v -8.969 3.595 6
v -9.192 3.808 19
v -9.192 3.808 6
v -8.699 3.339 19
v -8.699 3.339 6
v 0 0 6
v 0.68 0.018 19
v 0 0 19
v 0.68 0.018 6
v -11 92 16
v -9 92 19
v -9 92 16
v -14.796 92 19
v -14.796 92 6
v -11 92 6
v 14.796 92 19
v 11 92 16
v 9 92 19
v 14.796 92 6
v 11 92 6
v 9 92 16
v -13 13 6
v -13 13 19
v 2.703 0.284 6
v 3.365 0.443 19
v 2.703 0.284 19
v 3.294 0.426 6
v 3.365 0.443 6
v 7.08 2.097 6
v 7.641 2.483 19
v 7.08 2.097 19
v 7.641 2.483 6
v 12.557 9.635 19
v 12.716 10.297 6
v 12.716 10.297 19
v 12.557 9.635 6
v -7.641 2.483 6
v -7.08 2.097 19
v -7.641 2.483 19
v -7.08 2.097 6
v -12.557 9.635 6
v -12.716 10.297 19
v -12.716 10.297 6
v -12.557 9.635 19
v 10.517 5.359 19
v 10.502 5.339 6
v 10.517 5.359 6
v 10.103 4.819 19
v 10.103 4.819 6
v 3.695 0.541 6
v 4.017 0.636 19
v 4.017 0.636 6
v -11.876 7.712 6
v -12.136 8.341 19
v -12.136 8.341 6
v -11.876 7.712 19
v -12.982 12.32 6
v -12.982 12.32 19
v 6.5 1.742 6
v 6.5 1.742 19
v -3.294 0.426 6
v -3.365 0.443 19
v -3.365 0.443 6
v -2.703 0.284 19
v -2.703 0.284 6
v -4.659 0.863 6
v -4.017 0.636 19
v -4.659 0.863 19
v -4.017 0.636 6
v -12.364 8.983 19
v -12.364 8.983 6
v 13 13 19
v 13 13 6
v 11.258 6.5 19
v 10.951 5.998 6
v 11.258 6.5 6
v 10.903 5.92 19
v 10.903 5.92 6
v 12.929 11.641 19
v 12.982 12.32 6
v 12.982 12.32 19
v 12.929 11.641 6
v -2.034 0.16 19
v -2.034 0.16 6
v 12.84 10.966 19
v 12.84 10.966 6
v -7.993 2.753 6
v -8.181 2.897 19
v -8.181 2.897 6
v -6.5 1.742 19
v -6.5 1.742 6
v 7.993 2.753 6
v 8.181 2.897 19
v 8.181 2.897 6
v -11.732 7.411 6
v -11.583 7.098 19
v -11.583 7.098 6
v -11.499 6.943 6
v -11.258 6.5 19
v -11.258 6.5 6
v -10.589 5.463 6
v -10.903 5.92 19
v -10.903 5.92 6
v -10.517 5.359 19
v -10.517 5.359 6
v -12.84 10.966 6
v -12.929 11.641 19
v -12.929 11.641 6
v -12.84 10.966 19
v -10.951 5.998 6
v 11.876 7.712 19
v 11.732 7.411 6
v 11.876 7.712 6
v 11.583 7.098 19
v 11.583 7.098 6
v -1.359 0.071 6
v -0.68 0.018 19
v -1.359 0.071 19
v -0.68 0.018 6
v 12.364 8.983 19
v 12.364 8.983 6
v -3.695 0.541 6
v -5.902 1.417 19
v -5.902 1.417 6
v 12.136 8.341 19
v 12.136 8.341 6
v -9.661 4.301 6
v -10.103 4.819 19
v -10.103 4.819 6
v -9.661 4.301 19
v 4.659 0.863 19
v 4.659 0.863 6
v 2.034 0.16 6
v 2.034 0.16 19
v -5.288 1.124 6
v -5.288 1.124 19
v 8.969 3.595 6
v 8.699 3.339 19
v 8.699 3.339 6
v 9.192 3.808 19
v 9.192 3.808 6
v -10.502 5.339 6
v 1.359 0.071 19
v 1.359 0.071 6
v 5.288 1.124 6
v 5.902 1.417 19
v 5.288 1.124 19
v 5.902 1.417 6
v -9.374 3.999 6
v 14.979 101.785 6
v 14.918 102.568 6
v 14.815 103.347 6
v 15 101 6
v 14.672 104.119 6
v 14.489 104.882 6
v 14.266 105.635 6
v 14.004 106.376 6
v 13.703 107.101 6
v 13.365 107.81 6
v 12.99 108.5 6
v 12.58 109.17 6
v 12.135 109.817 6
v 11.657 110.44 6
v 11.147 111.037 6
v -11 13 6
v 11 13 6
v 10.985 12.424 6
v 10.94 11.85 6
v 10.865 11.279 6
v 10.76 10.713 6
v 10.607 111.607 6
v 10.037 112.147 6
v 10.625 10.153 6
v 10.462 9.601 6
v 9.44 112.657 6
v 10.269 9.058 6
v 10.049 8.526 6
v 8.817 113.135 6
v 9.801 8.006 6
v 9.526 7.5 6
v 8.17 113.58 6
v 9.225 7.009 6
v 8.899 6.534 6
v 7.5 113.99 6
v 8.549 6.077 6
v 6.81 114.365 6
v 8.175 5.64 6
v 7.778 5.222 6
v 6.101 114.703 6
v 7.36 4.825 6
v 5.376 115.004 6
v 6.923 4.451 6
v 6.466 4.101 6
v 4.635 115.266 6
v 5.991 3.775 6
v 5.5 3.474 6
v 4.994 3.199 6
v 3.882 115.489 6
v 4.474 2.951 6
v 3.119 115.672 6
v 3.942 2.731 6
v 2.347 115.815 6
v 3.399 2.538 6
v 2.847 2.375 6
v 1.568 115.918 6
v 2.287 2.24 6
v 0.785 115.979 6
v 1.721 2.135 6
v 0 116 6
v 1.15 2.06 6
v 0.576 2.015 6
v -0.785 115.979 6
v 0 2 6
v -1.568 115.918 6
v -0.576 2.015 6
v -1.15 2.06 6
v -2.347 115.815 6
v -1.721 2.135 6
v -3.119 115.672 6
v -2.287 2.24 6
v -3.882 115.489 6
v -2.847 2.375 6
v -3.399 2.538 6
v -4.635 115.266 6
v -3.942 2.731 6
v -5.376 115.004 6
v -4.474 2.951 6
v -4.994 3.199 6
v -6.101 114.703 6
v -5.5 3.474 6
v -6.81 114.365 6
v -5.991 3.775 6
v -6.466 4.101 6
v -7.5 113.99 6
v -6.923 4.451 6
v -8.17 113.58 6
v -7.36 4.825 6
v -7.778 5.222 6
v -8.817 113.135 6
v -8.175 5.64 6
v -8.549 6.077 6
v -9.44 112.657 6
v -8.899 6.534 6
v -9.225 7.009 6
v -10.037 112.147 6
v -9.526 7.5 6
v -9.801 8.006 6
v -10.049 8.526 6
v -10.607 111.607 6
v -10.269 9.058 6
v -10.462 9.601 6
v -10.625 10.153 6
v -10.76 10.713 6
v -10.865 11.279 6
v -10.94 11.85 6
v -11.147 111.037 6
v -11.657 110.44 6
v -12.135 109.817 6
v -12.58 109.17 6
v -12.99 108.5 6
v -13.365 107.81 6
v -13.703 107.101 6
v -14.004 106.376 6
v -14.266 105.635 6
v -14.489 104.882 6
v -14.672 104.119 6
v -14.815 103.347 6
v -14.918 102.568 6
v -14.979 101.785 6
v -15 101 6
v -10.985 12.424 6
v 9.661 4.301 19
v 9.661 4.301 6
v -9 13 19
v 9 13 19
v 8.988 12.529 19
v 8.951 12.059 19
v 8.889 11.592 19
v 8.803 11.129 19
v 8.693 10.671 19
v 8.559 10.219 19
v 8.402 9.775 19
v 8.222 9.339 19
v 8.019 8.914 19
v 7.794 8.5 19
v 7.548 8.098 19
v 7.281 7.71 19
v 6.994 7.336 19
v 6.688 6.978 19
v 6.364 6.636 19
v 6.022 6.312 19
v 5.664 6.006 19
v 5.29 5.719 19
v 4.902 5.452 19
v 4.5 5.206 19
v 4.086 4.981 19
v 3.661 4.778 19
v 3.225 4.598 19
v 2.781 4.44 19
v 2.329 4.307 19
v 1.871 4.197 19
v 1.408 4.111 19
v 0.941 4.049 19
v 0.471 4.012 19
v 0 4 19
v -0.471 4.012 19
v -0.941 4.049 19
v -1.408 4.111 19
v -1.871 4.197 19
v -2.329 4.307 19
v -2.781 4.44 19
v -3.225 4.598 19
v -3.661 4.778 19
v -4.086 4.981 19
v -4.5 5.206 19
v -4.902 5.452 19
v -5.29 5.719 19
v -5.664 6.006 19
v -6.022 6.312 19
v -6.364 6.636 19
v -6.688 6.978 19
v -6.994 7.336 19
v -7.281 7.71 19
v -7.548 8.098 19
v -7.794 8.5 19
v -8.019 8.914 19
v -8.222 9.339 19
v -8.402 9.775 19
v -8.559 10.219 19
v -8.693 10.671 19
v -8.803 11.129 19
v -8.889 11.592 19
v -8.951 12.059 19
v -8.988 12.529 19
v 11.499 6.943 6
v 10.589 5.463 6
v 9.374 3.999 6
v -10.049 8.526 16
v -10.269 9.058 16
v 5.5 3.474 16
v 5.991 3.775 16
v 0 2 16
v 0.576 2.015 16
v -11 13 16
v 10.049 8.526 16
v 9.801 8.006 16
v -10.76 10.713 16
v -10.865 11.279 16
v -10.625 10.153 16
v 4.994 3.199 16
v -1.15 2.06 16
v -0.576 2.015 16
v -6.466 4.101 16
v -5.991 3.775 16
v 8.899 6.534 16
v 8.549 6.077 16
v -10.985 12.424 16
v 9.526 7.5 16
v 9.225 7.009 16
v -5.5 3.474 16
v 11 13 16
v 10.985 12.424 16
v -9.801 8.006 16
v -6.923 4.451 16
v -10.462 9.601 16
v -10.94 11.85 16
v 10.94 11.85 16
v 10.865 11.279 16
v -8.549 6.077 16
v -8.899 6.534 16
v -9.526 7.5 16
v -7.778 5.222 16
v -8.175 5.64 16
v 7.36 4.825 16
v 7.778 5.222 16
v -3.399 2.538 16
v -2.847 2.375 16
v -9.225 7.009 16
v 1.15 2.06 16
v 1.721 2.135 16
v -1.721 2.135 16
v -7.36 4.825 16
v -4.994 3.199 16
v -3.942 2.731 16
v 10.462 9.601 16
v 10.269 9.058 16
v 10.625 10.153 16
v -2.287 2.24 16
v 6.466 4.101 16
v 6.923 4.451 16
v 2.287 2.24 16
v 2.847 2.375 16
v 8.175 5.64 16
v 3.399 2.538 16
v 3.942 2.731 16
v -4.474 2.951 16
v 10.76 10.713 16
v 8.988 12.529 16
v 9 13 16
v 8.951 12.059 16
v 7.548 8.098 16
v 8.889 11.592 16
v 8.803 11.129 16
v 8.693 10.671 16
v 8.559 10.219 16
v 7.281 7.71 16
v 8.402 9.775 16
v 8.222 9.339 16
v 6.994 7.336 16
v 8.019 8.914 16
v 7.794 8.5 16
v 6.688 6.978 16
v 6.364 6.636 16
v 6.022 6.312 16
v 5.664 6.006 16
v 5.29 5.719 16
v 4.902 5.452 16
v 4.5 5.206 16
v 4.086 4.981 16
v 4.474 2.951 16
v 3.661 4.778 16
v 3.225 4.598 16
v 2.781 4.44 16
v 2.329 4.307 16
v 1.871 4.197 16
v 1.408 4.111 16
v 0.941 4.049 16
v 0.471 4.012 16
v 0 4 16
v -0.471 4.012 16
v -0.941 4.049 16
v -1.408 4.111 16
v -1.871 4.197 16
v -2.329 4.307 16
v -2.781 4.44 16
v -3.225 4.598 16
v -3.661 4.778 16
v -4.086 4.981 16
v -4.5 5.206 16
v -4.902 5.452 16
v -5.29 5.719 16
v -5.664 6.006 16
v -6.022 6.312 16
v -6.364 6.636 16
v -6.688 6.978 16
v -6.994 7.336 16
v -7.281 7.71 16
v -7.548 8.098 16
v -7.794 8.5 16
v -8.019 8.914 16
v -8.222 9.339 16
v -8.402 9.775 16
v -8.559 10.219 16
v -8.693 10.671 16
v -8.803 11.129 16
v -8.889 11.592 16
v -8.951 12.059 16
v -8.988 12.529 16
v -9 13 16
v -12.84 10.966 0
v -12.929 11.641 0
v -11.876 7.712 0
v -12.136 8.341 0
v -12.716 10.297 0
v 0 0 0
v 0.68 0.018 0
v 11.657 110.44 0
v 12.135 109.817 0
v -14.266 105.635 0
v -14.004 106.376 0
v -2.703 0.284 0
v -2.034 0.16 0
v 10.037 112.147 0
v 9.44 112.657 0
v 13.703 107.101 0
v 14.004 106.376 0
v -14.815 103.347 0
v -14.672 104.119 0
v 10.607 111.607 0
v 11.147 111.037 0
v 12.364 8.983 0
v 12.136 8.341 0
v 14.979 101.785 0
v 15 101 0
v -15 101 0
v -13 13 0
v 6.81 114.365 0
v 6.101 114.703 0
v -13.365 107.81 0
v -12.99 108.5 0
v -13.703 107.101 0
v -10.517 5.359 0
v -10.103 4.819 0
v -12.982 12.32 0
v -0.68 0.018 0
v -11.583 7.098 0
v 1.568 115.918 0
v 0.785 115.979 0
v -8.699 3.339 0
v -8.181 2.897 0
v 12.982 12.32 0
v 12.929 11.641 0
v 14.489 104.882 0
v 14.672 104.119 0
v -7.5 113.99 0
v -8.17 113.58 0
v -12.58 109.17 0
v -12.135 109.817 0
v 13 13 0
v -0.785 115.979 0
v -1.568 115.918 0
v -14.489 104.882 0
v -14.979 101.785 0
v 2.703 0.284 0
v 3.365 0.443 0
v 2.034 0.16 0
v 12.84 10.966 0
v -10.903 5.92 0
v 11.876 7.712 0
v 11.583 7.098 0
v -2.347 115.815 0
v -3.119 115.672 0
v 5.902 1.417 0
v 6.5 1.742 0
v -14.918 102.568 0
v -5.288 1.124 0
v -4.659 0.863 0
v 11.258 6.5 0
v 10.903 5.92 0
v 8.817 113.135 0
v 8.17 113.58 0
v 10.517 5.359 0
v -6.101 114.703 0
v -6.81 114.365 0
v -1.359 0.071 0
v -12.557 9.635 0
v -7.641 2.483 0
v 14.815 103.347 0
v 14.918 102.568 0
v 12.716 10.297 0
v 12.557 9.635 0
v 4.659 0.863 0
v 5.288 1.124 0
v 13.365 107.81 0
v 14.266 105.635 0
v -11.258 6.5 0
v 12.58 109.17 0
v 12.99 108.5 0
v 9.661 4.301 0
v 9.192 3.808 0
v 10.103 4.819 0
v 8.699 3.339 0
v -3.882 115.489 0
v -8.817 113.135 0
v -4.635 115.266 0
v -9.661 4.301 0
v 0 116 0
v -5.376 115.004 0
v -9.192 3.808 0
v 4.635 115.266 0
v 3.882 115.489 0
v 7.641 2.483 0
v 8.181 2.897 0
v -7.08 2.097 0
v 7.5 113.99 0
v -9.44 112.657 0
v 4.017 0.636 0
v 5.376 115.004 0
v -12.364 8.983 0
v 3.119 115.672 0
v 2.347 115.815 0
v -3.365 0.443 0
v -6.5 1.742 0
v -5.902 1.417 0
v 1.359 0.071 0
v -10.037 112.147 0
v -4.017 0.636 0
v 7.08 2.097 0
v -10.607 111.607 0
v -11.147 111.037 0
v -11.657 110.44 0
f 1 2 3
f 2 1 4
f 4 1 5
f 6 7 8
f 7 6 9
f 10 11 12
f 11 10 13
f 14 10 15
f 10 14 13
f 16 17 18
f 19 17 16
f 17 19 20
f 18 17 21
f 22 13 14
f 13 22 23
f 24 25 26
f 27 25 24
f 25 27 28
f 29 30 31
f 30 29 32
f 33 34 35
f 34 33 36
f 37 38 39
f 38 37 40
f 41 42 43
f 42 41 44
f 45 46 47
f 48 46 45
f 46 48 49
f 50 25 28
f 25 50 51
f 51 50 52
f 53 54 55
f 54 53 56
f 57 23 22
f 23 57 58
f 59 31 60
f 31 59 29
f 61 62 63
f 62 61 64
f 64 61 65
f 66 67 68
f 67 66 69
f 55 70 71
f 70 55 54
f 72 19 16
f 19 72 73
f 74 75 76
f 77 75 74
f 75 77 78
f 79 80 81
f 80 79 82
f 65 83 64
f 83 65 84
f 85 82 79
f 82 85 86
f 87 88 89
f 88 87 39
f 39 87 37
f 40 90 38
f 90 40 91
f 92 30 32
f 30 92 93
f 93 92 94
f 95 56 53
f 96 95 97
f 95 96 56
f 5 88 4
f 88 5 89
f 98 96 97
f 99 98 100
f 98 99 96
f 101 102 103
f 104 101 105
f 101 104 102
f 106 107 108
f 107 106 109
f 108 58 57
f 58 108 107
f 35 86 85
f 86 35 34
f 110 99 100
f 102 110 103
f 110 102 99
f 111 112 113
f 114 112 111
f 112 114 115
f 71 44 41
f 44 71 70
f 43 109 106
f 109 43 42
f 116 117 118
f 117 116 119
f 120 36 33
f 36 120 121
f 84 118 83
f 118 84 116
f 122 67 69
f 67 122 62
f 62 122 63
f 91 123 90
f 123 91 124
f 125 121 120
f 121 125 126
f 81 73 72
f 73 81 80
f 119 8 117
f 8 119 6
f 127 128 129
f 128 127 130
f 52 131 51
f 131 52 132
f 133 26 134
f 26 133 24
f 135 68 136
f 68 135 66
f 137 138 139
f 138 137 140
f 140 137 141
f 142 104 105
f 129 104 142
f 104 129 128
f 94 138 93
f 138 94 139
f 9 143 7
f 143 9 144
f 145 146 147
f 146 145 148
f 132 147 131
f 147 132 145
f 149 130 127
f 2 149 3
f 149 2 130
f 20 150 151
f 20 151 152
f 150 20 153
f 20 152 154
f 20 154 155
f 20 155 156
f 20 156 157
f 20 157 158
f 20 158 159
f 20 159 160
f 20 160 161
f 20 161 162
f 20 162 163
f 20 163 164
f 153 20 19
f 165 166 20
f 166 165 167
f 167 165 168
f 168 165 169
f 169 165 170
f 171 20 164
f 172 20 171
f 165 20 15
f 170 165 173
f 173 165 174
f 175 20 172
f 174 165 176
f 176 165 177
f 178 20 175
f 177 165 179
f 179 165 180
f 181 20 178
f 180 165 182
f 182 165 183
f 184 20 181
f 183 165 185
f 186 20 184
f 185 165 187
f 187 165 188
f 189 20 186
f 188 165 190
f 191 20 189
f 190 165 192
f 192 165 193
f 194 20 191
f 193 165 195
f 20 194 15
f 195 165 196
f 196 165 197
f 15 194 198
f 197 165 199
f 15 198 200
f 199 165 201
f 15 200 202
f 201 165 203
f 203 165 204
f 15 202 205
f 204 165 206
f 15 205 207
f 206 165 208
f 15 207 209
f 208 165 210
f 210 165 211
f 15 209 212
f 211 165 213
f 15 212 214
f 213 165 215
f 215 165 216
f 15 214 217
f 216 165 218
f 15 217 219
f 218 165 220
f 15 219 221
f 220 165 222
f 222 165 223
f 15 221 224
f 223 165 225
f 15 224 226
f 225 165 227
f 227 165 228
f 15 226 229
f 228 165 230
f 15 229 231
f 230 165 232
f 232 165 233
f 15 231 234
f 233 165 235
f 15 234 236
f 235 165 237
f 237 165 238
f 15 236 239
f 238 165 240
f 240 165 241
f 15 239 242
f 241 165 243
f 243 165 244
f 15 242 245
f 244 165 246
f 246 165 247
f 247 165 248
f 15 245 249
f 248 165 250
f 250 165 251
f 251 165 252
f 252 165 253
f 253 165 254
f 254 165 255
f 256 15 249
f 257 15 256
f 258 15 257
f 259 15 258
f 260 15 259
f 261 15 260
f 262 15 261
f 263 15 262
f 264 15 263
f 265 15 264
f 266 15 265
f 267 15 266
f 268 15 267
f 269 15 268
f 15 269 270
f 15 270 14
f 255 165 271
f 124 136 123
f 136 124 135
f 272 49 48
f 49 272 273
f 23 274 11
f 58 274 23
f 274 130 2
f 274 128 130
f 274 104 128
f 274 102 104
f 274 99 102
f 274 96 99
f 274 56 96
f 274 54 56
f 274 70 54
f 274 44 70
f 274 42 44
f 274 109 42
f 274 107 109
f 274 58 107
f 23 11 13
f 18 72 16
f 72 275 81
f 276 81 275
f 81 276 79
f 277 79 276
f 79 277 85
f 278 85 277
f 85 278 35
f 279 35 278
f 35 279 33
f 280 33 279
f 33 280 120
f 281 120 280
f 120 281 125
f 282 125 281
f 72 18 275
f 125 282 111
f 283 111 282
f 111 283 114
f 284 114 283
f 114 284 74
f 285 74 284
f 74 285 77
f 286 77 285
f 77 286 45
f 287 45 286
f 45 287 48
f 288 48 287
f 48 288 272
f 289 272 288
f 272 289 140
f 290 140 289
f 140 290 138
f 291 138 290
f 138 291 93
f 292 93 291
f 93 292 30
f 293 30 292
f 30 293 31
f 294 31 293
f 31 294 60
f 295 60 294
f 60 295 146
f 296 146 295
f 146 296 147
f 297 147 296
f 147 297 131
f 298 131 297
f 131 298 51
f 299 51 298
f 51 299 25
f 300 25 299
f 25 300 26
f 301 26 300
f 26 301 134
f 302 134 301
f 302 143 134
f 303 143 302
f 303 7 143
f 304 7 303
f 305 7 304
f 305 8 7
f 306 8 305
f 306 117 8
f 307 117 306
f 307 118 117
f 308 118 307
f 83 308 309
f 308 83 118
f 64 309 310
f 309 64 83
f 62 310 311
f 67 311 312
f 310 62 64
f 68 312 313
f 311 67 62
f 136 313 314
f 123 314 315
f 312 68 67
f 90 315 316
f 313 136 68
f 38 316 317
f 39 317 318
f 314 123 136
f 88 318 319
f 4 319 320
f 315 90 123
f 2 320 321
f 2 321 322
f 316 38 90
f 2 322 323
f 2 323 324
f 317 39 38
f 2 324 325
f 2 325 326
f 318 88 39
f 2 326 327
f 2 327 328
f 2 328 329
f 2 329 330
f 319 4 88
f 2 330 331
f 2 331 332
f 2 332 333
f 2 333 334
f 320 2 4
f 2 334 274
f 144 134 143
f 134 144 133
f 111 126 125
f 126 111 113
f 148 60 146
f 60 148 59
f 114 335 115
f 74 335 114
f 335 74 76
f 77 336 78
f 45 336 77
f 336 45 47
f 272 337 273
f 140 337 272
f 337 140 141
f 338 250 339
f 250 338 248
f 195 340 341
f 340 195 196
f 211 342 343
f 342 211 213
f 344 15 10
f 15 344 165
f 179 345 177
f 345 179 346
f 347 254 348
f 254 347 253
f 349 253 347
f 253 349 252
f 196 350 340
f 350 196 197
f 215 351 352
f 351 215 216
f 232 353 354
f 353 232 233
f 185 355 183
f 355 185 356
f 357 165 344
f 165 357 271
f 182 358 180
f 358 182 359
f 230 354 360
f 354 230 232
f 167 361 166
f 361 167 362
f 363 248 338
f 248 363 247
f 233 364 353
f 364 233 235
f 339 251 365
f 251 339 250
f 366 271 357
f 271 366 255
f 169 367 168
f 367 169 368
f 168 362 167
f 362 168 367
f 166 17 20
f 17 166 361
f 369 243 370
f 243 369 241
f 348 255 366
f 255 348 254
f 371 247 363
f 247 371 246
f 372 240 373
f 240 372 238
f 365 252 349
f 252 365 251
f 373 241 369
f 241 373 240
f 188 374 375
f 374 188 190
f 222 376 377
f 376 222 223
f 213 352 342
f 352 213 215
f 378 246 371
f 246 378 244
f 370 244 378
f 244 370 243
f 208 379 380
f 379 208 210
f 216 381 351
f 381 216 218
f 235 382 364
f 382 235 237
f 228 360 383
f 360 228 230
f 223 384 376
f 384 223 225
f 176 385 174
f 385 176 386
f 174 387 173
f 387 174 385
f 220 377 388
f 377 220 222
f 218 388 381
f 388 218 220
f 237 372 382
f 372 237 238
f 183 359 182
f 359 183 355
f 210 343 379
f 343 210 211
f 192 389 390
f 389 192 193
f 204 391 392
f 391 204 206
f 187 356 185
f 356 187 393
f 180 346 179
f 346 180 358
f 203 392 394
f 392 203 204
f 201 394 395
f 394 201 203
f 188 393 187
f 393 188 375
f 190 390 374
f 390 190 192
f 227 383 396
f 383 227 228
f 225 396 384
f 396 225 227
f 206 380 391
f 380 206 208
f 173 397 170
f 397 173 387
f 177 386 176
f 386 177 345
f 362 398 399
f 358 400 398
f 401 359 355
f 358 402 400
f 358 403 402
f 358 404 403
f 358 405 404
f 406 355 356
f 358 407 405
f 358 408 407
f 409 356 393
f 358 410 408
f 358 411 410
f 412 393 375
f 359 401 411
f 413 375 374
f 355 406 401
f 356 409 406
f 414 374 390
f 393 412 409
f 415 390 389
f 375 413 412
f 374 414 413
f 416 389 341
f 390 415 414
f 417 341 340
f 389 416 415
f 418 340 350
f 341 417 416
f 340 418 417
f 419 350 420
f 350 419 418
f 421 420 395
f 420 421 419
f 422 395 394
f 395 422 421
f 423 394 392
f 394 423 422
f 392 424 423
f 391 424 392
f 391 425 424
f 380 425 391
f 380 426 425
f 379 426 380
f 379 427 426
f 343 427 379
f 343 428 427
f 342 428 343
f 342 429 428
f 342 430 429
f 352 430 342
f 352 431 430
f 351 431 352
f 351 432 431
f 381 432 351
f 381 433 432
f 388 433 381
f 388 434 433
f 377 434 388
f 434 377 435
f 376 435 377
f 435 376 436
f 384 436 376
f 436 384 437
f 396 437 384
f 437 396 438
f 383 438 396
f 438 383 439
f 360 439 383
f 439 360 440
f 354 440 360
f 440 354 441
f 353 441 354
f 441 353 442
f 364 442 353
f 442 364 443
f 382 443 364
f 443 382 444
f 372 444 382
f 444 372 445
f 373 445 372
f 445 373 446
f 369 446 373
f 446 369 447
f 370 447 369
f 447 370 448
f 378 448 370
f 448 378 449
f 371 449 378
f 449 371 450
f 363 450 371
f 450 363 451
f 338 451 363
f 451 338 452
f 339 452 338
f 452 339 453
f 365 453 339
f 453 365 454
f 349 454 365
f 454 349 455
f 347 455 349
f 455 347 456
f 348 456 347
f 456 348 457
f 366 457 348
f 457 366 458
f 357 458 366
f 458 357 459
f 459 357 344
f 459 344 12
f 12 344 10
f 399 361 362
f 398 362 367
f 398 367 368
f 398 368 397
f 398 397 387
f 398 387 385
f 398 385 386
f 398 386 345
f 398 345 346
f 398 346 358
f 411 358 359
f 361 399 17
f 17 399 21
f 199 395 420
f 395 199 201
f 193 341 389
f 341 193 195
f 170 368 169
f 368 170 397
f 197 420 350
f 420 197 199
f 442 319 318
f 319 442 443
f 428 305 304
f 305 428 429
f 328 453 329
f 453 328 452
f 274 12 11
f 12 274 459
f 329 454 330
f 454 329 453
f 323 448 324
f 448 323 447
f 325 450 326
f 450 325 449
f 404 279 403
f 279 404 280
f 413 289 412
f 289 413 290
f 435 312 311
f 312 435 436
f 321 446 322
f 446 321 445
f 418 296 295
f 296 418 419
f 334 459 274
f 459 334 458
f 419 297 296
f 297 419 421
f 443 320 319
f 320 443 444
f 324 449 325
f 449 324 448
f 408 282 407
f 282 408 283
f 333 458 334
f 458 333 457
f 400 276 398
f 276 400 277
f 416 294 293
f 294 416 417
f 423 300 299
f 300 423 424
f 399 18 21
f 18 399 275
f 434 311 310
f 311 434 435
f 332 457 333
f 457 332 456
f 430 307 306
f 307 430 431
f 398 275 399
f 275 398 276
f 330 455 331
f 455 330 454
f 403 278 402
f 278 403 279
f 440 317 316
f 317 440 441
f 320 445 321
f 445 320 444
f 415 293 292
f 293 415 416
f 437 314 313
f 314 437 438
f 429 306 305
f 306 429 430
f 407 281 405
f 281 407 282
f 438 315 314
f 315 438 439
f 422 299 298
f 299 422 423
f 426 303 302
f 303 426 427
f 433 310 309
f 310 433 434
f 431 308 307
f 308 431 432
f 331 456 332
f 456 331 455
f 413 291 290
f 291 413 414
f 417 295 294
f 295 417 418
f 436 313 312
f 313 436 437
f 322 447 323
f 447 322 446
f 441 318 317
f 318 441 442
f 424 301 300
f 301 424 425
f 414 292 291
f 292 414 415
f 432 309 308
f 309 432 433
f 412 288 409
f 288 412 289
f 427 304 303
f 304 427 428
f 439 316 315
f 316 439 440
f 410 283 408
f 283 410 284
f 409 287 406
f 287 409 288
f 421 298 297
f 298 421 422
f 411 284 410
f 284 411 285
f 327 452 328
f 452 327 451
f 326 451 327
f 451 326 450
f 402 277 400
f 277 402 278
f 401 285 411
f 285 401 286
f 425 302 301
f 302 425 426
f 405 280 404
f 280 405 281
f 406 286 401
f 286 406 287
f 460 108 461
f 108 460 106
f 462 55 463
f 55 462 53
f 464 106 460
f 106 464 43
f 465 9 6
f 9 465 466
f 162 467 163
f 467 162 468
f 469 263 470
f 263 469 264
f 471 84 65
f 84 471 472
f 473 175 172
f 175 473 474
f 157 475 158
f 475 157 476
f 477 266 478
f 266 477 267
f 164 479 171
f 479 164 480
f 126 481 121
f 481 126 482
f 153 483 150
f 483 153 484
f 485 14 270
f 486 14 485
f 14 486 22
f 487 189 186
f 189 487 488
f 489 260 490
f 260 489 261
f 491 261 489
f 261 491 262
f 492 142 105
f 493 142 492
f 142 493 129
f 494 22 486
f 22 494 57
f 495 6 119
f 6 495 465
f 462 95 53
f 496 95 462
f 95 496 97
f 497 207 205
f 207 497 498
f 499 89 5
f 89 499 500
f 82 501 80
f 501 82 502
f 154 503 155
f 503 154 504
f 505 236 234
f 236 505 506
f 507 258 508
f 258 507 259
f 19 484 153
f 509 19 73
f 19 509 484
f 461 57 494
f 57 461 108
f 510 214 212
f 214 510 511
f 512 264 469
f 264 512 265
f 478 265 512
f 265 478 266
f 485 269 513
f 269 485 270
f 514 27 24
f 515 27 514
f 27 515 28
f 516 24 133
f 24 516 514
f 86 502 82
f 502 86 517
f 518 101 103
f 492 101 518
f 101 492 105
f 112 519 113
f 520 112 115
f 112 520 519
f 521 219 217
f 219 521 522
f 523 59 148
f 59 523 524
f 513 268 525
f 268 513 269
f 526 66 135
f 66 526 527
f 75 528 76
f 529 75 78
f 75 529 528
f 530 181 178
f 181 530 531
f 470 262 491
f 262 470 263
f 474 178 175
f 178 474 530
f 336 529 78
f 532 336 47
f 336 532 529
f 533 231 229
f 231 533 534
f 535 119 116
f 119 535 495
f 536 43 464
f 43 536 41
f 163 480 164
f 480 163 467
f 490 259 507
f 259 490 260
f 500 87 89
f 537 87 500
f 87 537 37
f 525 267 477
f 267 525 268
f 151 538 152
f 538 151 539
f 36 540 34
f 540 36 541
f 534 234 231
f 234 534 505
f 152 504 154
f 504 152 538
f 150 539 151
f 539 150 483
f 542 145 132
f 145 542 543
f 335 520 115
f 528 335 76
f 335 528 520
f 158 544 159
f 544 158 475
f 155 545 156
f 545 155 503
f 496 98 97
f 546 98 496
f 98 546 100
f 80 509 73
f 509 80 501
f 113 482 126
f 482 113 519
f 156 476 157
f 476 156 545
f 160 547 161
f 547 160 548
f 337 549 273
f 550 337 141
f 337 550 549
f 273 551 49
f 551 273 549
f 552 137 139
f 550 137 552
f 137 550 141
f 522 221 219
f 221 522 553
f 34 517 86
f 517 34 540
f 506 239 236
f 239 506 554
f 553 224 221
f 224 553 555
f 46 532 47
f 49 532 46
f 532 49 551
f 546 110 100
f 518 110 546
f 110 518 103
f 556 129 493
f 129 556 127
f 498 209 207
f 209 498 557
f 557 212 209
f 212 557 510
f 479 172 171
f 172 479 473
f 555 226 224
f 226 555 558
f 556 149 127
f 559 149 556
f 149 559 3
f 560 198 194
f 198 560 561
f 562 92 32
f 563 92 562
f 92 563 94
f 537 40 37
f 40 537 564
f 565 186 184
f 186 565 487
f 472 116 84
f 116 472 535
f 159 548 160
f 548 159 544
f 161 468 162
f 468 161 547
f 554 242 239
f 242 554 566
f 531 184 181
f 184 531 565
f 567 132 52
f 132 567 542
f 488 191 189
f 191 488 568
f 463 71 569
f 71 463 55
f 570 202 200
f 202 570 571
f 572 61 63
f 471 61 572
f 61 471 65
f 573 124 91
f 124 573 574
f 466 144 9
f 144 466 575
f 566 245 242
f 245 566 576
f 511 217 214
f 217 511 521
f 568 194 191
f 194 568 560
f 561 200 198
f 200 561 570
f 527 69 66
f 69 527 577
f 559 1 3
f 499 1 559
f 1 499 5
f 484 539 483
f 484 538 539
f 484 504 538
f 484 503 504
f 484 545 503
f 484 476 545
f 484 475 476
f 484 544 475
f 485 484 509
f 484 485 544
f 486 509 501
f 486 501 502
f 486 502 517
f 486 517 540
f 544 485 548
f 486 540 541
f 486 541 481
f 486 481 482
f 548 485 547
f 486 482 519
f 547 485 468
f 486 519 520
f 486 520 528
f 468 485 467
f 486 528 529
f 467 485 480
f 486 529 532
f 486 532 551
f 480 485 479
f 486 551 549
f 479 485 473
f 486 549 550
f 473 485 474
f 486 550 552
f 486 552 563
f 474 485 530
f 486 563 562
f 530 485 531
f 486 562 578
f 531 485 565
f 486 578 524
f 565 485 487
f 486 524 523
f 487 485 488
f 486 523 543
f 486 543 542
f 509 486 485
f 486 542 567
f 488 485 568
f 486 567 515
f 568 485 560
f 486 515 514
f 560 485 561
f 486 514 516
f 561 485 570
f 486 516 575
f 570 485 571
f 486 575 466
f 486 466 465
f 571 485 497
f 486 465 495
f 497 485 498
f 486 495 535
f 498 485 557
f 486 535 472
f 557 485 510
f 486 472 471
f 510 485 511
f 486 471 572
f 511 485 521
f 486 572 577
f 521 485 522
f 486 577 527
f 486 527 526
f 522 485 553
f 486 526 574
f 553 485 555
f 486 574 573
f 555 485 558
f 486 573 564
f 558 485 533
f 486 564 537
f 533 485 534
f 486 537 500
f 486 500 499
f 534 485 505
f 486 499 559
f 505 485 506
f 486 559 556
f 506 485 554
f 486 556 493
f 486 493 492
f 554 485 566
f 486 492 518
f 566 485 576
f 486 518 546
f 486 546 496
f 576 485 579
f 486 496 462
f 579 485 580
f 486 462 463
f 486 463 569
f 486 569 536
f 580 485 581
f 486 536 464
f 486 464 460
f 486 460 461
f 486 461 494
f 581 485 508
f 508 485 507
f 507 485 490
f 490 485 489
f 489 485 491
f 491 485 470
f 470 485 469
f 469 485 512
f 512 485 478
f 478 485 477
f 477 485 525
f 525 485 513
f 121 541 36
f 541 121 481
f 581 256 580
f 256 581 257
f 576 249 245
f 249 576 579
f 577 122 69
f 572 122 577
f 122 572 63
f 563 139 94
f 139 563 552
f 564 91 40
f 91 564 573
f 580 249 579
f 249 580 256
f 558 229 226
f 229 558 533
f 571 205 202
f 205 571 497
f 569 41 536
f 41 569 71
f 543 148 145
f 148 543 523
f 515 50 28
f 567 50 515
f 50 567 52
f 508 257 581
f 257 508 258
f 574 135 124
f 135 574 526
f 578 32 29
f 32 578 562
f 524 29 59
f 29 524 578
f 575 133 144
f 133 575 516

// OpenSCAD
// Sponge Holder - SpongeButler style
// A tapered pill lies FLAT against the wall (its flat back is the adhesive
// face). On the pill's FRONT face is a U-shaped grip that stands off the wall;
// the sponge drops into the U and is held STICKING STRAIGHT OUT, perpendicular
// to the wall, so it air-dries. The grip's bottom follows the pill's rounded
// bottom, and a small lip along the grip's front edge helps retain the sponge.
//
// Print orientation: pill back (adhesive face) flat on the bed, U-grip up.

/* ===================== SPONGE ===================== */
sponge_t = 25;      // sponge thickness — gripped between the U side walls

/* ======================= FIT ===================== */
grip     = 3;       // slot narrower than the sponge -> friction wedge

/* ================= PILL (wall plate) ============= */
tab_h    = 116;     // pill height
r_top    = 15;      // fuller rounded top
r_bot    = 13;      // narrower rounded bottom (keeps the walls slim)
plate_t  = 6;       // pill thickness (sits flat on the wall)

/* ================= U-GRIP (front) =============== */
grip_depth = 13;    // how far the U stands off the pill (sponge sticks out past this)
grip_top   = 92;    // height the grip walls rise to (open above this)
lip        = 2;     // inward retaining lip along the grip's front edge
lip_z      = 3;     // how deep the lip runs back from the front edge
$fn = 120;

/* ===================== DERIVED =================== */
slot_w = sponge_t - grip;              // wedged slot width = 22

module taper_pill(shrink = 0)
    hull() {
        translate([0, tab_h - r_top]) circle(r = r_top - shrink);
        translate([0, r_bot])         circle(r = r_bot - shrink);
    }

// Sponge slot outline: constant-width channel, open at the top, with a rounded
// bottom concentric with the pill's own rounded bottom.
module slot_profile(w)
    union() {
        translate([0, r_bot])      circle(r = w/2);
        translate([-w/2, r_bot])   square([w, grip_top]);
    }

module sponge_holder() {
    // Pill plate flat against the wall
    linear_extrude(plate_t) taper_pill();

    // U-grip on the front: the pill's lower profile pushed forward, with the
    // sponge slot cut out (open at the top) and a lip at the front edge.
    translate([0, 0, plate_t])
        difference() {
            // grip body = the pill's lower profile, extruded out from the wall
            linear_extrude(grip_depth)
                intersection() {
                    taper_pill();
                    translate([-100, 0]) square([200, grip_top]);
                }

            // main sponge slot (rounded bottom; does not reach the front face)
            translate([0, 0, -1])
                linear_extrude(grip_depth - lip_z + 1) slot_profile(slot_w);

            // front slot, narrower -> leaves an inward lip on each wall
            translate([0, 0, grip_depth - lip_z])
                linear_extrude(lip_z + 2) slot_profile(slot_w - 2*lip);
        }
}

sponge_holder();
